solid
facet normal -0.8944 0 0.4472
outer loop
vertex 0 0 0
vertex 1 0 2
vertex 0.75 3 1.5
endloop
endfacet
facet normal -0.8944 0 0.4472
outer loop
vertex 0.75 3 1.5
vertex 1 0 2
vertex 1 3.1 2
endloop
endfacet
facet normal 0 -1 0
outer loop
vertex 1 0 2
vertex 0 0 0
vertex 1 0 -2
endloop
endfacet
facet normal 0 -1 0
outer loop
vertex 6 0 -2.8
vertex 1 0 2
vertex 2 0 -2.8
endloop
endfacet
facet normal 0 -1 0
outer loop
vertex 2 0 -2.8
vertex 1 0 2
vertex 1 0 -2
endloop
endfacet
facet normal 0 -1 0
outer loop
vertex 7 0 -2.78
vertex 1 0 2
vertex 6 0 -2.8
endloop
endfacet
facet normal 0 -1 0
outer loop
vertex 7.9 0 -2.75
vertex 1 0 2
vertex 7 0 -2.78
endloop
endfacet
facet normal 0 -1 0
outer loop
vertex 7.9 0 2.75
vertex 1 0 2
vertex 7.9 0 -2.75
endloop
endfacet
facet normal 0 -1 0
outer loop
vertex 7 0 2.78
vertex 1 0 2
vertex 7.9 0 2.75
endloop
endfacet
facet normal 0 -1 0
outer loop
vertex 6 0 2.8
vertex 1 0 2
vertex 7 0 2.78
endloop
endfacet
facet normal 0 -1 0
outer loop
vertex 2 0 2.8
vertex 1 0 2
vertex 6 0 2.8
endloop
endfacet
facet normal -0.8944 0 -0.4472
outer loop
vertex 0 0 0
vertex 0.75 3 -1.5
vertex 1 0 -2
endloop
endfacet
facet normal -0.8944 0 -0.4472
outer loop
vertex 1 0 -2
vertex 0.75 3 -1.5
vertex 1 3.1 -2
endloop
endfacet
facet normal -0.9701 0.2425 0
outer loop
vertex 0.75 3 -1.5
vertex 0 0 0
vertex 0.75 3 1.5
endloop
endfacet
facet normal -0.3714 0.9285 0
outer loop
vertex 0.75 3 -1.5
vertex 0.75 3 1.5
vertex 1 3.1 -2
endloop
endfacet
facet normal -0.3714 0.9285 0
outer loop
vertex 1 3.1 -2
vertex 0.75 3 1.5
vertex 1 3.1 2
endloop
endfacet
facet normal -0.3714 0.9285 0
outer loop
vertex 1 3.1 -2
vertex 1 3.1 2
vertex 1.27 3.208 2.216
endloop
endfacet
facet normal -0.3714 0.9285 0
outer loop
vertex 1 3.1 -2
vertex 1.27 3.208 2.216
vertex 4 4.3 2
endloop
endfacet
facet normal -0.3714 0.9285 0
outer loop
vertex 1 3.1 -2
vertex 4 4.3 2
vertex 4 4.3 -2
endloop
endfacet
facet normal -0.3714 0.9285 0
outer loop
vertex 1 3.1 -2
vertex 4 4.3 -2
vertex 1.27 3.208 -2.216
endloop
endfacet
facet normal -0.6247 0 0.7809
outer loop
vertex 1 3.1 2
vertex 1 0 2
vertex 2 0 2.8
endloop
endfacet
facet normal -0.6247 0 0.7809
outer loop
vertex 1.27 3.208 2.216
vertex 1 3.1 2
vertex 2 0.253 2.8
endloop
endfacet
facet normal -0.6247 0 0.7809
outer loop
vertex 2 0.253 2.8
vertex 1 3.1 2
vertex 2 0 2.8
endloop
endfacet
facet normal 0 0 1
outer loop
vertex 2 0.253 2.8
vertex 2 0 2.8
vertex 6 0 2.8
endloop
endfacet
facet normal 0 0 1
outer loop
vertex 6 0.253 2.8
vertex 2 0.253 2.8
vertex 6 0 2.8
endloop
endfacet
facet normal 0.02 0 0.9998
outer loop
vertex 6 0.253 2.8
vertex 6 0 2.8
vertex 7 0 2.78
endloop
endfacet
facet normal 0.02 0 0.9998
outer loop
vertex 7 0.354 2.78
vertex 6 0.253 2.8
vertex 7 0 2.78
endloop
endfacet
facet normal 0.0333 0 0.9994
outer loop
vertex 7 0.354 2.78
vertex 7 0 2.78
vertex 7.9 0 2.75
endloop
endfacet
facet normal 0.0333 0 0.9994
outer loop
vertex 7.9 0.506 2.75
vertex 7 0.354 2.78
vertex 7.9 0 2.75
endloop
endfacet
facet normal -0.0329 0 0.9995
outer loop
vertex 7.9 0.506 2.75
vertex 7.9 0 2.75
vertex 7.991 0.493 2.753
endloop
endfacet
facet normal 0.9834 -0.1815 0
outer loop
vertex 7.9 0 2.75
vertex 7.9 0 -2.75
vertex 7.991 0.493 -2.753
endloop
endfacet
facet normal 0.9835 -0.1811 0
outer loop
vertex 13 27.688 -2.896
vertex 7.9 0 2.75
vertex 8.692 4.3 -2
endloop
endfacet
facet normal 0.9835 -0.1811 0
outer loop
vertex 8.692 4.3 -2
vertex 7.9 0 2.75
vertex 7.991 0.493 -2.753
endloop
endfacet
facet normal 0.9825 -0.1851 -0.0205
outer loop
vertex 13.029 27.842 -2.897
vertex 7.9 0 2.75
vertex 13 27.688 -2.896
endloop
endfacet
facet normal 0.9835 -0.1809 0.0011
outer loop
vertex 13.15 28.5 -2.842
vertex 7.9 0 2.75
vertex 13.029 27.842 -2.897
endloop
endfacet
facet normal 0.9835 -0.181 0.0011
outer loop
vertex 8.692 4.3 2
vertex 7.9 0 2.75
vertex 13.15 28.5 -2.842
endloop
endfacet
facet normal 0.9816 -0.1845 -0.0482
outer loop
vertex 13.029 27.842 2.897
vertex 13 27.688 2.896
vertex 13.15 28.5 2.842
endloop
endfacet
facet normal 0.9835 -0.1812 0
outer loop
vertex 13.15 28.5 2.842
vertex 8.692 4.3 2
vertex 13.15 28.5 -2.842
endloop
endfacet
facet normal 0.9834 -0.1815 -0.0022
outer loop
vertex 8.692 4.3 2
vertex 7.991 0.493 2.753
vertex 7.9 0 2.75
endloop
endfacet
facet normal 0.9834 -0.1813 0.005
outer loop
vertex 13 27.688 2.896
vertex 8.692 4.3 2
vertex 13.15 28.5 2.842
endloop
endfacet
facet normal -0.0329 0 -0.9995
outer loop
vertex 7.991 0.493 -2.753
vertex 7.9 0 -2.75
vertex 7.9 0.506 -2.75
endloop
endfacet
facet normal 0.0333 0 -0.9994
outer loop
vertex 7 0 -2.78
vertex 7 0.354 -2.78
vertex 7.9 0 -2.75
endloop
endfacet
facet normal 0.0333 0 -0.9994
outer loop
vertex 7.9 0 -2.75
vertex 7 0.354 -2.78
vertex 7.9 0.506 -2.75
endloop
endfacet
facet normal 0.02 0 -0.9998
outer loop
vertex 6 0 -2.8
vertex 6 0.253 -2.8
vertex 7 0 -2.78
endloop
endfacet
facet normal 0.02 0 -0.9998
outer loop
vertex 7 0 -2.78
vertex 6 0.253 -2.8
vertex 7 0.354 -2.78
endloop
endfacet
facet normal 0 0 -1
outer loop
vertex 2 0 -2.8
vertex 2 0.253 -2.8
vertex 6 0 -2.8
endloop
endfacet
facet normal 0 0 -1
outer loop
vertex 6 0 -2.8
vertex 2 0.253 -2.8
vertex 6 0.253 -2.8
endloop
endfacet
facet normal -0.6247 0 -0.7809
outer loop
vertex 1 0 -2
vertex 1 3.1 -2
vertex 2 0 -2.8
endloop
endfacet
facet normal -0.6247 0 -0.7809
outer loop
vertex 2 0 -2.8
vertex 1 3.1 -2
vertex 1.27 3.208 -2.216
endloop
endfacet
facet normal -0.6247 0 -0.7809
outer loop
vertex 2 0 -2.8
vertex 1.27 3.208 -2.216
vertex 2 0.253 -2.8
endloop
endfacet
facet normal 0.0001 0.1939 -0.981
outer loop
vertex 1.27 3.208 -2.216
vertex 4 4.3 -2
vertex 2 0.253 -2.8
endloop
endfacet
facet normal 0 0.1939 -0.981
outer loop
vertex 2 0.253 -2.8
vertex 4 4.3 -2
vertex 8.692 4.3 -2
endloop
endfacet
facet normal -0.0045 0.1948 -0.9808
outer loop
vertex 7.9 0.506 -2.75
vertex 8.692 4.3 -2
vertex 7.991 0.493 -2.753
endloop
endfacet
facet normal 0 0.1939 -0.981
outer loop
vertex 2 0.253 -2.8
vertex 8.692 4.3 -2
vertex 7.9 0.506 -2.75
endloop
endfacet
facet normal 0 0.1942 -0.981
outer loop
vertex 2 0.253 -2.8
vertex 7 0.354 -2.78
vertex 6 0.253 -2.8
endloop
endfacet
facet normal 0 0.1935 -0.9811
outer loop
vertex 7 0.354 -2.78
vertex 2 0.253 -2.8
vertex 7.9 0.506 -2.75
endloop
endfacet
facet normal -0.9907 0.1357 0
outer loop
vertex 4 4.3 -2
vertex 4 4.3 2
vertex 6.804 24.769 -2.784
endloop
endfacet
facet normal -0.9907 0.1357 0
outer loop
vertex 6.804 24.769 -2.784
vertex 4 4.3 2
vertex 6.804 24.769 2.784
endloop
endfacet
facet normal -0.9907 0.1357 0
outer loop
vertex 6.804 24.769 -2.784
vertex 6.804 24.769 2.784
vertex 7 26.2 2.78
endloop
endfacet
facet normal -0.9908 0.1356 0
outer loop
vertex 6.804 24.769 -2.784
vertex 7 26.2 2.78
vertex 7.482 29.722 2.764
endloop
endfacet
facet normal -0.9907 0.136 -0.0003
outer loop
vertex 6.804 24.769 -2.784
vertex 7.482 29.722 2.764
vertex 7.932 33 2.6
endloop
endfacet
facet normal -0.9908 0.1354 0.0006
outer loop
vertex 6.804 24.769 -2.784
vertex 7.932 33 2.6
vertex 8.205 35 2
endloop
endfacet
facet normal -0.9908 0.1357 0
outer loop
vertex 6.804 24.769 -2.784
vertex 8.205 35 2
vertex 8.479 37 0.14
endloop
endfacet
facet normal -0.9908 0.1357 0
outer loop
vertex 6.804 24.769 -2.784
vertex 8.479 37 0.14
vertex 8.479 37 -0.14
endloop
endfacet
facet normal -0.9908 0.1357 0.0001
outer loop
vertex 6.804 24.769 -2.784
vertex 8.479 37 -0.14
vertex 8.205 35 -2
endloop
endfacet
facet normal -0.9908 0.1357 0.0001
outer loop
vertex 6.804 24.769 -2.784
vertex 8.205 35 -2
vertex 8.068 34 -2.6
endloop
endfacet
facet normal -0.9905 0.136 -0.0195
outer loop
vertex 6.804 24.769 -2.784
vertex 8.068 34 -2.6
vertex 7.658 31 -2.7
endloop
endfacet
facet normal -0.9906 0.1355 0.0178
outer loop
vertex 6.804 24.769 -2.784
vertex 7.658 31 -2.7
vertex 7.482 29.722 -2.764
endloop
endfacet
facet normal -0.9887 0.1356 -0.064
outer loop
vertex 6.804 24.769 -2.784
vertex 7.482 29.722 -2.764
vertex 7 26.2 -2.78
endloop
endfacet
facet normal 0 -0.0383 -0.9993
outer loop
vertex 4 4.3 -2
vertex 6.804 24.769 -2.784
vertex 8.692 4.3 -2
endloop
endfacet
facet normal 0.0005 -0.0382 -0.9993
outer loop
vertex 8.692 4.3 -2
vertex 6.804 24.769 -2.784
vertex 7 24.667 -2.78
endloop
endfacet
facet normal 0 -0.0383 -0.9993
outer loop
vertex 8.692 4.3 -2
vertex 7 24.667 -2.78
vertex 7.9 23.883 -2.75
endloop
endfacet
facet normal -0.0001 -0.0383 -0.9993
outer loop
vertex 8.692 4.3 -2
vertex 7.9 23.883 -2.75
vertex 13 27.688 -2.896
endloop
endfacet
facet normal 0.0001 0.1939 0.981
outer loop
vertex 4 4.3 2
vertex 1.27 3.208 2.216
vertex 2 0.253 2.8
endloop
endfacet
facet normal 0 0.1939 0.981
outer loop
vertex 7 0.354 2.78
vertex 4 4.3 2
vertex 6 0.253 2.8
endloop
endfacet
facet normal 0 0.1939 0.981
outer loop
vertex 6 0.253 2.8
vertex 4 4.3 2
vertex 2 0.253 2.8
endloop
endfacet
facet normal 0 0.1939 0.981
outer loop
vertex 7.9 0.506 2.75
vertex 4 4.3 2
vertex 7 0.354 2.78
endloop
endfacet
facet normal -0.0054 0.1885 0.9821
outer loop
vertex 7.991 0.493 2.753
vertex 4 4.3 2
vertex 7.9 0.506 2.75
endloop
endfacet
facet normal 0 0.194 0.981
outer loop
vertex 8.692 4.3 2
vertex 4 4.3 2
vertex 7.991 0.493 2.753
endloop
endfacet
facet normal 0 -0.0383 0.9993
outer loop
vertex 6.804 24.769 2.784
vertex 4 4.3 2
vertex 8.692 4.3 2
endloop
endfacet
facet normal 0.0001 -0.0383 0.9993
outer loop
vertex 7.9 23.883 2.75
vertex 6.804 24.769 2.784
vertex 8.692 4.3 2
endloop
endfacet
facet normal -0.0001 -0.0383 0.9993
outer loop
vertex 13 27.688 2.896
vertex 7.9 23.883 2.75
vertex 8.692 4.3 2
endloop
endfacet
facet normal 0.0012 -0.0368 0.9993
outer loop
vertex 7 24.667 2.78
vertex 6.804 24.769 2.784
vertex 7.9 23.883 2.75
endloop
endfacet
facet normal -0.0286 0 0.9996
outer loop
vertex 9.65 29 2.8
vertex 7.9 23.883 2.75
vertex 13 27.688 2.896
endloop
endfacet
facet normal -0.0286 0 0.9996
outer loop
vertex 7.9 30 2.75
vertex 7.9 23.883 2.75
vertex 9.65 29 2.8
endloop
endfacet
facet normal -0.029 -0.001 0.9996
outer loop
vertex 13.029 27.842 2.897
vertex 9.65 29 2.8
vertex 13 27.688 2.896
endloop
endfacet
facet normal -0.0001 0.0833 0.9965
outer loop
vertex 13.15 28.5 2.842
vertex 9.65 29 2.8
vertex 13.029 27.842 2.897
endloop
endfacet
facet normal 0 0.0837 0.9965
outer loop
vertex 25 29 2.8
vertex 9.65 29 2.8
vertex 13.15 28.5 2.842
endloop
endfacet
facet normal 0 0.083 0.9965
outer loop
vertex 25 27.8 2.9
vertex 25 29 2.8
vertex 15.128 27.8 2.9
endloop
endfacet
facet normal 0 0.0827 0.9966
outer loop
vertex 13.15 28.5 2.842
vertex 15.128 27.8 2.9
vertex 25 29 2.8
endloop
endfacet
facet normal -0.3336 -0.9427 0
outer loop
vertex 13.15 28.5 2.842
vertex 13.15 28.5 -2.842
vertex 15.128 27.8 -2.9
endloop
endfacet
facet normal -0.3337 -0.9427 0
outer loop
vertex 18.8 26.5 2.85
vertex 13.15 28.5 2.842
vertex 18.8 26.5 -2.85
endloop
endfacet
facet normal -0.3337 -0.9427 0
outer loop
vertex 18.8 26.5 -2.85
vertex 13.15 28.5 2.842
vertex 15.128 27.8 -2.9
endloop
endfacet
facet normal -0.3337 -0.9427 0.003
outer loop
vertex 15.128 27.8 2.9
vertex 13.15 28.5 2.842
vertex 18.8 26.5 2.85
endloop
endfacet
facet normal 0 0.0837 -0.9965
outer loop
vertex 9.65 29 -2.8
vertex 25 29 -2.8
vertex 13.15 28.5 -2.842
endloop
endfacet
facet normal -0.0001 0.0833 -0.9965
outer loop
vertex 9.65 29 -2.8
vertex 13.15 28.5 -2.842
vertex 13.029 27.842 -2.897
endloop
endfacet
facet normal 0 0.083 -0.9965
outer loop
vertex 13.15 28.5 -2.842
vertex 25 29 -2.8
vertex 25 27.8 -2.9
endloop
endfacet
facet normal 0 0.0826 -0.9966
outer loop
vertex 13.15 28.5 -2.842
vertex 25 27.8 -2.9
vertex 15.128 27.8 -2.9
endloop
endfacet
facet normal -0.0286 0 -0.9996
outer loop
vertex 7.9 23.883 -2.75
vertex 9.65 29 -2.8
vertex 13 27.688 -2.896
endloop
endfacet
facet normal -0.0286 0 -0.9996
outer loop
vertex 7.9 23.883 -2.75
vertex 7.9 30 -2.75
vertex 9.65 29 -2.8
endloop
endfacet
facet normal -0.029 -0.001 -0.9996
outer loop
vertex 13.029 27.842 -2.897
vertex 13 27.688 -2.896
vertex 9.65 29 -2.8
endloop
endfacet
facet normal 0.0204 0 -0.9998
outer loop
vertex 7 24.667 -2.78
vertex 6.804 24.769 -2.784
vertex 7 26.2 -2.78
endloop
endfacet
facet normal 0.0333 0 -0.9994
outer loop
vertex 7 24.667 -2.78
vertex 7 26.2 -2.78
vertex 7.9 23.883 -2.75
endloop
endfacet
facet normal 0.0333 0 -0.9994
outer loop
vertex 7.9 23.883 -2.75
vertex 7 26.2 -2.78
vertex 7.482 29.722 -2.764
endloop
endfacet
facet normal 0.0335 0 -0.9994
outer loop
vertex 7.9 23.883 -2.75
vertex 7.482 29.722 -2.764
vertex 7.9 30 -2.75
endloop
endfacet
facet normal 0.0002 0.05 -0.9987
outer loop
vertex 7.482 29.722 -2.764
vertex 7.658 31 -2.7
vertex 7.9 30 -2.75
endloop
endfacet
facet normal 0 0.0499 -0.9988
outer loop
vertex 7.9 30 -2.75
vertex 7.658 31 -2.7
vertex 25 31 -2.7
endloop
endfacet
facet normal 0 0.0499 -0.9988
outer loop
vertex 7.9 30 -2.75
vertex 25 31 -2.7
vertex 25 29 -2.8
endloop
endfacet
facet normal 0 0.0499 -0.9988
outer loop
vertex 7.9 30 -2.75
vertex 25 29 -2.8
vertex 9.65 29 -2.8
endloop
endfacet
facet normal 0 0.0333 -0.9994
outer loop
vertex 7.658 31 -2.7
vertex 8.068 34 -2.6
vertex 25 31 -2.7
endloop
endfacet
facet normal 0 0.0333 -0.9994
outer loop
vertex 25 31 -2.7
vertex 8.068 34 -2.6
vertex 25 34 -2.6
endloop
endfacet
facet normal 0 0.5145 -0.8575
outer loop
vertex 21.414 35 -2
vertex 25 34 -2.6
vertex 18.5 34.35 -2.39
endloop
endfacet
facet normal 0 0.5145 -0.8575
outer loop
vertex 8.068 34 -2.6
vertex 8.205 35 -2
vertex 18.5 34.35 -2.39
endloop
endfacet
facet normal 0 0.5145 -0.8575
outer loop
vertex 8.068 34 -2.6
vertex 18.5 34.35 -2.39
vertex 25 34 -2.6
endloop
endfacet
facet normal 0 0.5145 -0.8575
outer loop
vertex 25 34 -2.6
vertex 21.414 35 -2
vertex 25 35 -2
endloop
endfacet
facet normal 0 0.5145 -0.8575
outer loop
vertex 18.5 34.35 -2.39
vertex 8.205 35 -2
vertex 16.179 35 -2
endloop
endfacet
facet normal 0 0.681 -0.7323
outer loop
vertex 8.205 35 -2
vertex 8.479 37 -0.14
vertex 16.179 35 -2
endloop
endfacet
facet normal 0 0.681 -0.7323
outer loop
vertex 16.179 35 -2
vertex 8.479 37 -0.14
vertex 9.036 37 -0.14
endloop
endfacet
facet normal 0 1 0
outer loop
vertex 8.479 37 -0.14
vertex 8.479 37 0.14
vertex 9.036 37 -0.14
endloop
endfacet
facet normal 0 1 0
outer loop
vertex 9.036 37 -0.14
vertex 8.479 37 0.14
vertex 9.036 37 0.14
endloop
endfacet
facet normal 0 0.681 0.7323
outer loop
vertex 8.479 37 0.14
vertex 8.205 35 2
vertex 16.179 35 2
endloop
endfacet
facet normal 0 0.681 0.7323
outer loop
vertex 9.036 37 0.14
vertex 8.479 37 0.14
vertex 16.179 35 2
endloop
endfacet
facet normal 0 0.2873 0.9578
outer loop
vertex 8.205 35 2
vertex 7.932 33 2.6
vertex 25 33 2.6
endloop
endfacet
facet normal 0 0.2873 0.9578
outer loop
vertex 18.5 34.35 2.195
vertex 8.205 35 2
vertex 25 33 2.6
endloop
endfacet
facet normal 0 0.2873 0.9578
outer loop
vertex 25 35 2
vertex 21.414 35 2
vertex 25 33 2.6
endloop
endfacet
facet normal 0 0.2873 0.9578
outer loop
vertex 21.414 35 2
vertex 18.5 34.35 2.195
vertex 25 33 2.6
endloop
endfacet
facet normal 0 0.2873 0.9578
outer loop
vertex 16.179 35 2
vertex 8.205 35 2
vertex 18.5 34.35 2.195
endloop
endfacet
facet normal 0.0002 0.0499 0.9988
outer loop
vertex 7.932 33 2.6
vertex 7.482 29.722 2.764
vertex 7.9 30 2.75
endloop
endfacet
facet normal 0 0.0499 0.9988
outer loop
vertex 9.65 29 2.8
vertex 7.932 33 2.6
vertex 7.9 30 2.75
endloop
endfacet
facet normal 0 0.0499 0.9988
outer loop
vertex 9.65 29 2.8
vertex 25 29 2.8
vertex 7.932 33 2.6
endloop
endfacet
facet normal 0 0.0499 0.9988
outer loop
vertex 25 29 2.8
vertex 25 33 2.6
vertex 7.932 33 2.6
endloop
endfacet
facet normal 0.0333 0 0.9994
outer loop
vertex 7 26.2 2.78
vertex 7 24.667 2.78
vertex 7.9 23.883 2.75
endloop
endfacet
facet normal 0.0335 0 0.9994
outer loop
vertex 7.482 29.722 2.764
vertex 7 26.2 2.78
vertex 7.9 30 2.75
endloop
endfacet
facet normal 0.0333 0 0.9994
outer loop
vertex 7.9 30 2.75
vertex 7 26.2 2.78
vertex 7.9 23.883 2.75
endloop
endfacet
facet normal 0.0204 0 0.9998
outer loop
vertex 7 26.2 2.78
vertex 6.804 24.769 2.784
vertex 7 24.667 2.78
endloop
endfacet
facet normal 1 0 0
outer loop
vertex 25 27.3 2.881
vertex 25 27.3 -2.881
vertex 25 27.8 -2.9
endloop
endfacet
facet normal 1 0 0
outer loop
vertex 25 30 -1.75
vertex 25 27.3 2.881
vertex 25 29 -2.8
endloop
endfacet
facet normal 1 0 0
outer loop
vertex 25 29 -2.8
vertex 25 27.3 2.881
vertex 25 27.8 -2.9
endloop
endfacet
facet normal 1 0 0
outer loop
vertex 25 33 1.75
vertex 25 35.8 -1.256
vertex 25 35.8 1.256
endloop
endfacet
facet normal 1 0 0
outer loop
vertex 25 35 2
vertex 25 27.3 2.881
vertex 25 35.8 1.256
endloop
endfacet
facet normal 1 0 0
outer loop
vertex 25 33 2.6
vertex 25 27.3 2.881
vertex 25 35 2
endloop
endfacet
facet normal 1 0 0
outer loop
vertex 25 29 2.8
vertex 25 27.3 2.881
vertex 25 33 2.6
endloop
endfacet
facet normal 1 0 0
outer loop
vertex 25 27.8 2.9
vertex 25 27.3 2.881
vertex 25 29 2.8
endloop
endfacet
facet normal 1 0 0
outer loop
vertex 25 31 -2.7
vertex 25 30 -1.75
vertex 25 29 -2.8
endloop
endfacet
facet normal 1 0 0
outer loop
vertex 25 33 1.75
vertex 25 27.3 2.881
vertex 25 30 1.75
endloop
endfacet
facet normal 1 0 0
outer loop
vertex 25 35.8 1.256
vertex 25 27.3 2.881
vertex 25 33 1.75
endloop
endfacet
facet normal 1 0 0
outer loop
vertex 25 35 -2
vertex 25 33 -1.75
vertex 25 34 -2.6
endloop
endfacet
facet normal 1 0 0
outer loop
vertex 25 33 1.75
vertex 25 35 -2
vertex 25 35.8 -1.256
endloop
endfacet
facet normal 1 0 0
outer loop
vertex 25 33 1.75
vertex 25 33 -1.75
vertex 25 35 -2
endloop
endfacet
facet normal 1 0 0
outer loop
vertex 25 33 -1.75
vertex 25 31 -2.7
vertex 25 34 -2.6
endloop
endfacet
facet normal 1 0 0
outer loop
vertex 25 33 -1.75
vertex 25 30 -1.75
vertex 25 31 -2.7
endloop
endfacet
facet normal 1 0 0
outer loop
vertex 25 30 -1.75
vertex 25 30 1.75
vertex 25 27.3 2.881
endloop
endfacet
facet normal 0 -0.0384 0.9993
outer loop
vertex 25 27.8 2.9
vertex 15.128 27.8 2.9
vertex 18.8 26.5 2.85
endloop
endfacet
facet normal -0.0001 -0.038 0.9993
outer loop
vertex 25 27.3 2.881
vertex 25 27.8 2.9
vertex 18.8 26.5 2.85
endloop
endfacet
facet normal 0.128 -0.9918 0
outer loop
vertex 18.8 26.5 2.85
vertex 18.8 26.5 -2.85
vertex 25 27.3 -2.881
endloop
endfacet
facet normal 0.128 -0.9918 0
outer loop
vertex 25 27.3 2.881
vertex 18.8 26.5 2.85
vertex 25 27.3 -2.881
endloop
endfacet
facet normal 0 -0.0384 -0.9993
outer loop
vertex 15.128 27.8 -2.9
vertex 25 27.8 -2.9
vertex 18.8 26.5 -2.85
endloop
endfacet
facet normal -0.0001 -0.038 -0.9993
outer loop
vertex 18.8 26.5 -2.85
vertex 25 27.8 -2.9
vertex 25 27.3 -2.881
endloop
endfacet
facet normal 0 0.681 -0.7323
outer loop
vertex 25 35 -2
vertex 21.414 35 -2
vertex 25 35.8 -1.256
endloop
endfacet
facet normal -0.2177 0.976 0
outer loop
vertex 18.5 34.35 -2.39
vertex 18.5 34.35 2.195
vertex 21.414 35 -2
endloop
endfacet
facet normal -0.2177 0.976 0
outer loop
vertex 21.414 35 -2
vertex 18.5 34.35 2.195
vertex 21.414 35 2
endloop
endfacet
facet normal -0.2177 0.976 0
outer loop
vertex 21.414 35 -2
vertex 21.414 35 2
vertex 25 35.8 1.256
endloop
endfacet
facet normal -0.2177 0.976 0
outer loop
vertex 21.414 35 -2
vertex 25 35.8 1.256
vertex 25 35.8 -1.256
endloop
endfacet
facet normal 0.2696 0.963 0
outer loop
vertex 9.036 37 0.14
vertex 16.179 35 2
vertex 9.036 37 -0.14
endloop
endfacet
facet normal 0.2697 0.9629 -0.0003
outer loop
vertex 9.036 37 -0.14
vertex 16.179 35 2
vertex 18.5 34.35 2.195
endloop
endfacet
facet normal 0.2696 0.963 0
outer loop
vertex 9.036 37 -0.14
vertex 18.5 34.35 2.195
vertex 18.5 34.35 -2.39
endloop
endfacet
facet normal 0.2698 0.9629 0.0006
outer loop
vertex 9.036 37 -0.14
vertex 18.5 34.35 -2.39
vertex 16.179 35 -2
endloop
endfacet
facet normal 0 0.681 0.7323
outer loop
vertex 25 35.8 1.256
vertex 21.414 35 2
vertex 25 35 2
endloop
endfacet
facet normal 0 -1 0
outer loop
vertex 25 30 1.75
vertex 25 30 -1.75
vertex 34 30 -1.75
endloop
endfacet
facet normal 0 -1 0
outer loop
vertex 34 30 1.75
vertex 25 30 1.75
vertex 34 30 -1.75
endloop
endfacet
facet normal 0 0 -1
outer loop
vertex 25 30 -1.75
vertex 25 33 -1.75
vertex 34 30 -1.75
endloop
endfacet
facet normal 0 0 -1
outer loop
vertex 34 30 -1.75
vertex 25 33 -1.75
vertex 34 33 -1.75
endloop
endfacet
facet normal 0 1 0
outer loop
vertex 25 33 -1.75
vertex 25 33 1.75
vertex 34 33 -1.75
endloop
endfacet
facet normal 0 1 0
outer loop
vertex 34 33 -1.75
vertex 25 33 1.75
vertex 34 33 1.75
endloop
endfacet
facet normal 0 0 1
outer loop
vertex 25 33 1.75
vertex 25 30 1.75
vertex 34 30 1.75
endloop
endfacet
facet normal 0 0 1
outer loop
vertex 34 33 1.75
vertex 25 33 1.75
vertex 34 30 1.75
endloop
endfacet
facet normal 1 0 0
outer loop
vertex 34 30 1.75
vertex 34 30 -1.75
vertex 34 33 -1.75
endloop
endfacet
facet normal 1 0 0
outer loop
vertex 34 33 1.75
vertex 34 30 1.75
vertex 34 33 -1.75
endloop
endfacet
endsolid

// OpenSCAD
max_dimension = 37;

intersection() {
	// Side profile.
	translate([0, 0, -max_dimension]) linear_extrude(max_dimension*2) polygon(points=[
		[0, 0], // Tip of toe.
		[7.9,0], // Back of heel
		[13.15, 28.5], // Under knee
		[18.8, 26.5], // Bottom of post-knee joint
		[25,27.3], // Bottom back of leg.
		[25, 30], // Bottom of beginning of peg
		[34, 30], // Bottom of end of peg.
		[34, 33], // Top of end of peg.
		[25, 33], // Top of beginning of peg.
		[25, 35.8], // Top of back of leg.
		[18.5, 34.35], // Top of post-knee joint.
		[8.5, 37.15], // Top of knee
		[4, 4.3], // Top of ankle
		[.75, 3] // Top of toe
	]);

	// Front profile.
	rotate([0, 90, 0]) linear_extrude(max_dimension*2) polygon(points=[
		[0, 0], // Tip of toe.
		[2.85, 0], // Side of foot.
		[2,4.3], // Back of heel
		[2.9, 27.8], // Under knee
		[2.8, 29], // Under knee
		[2.7, 31], // Under knee
		[2.6, 34], // Under knee
		[2, 35],
		[0, 37.15], // Top of knee
		[-2, 35],
		[-2.6, 33], // Under knee
		[-2.7, 31], // Under knee
		[-2.8, 29], // Under knee
		[-2.9, 27.8], // Under knee
		[-2,4.3], // Back of heel
		[-2.85, 0], // Side of foot.
	]);

	// Top profile.
	translate([0, max_dimension, 0]) rotate([90, 0, 0]) linear_extrude(max_dimension*2) polygon(points=[
		[0, 0], // Tip of toe.
		[1, 2], // Tip of toe.
		[2, 2.8], // Tip of toe.
		[6, 2.8], // Tip of toe.
		[7, 2.78], // Tip of toe.
		[7.9,2.75], // Back of heel
		[13.15, 2.9], // Under knee
		[18.8, 2.9], // Bottom of post-knee joint
		[25,2.9], // Bottom back of leg.
		[25, 1.75], // Bottom of beginning of peg
		[34, 1.75], // Bottom of end of peg.
		[34, 0], // Bottom of end of peg.
		[34, -1.75], // Bottom of end of peg.
		[25, -1.75], // Bottom of beginning of peg
		[25,-2.9], // Bottom back of leg.
		[18.8, -2.9], // Bottom of post-knee joint
		[13.15, -2.9], // Under knee
		[7.9,-2.75], // Back of heel
		[7, -2.78], // Tip of toe.
		[6, -2.8], // Tip of toe.
		[2, -2.8], // Tip of toe.
		[1, -2], // Tip of toe.
	]);
}
